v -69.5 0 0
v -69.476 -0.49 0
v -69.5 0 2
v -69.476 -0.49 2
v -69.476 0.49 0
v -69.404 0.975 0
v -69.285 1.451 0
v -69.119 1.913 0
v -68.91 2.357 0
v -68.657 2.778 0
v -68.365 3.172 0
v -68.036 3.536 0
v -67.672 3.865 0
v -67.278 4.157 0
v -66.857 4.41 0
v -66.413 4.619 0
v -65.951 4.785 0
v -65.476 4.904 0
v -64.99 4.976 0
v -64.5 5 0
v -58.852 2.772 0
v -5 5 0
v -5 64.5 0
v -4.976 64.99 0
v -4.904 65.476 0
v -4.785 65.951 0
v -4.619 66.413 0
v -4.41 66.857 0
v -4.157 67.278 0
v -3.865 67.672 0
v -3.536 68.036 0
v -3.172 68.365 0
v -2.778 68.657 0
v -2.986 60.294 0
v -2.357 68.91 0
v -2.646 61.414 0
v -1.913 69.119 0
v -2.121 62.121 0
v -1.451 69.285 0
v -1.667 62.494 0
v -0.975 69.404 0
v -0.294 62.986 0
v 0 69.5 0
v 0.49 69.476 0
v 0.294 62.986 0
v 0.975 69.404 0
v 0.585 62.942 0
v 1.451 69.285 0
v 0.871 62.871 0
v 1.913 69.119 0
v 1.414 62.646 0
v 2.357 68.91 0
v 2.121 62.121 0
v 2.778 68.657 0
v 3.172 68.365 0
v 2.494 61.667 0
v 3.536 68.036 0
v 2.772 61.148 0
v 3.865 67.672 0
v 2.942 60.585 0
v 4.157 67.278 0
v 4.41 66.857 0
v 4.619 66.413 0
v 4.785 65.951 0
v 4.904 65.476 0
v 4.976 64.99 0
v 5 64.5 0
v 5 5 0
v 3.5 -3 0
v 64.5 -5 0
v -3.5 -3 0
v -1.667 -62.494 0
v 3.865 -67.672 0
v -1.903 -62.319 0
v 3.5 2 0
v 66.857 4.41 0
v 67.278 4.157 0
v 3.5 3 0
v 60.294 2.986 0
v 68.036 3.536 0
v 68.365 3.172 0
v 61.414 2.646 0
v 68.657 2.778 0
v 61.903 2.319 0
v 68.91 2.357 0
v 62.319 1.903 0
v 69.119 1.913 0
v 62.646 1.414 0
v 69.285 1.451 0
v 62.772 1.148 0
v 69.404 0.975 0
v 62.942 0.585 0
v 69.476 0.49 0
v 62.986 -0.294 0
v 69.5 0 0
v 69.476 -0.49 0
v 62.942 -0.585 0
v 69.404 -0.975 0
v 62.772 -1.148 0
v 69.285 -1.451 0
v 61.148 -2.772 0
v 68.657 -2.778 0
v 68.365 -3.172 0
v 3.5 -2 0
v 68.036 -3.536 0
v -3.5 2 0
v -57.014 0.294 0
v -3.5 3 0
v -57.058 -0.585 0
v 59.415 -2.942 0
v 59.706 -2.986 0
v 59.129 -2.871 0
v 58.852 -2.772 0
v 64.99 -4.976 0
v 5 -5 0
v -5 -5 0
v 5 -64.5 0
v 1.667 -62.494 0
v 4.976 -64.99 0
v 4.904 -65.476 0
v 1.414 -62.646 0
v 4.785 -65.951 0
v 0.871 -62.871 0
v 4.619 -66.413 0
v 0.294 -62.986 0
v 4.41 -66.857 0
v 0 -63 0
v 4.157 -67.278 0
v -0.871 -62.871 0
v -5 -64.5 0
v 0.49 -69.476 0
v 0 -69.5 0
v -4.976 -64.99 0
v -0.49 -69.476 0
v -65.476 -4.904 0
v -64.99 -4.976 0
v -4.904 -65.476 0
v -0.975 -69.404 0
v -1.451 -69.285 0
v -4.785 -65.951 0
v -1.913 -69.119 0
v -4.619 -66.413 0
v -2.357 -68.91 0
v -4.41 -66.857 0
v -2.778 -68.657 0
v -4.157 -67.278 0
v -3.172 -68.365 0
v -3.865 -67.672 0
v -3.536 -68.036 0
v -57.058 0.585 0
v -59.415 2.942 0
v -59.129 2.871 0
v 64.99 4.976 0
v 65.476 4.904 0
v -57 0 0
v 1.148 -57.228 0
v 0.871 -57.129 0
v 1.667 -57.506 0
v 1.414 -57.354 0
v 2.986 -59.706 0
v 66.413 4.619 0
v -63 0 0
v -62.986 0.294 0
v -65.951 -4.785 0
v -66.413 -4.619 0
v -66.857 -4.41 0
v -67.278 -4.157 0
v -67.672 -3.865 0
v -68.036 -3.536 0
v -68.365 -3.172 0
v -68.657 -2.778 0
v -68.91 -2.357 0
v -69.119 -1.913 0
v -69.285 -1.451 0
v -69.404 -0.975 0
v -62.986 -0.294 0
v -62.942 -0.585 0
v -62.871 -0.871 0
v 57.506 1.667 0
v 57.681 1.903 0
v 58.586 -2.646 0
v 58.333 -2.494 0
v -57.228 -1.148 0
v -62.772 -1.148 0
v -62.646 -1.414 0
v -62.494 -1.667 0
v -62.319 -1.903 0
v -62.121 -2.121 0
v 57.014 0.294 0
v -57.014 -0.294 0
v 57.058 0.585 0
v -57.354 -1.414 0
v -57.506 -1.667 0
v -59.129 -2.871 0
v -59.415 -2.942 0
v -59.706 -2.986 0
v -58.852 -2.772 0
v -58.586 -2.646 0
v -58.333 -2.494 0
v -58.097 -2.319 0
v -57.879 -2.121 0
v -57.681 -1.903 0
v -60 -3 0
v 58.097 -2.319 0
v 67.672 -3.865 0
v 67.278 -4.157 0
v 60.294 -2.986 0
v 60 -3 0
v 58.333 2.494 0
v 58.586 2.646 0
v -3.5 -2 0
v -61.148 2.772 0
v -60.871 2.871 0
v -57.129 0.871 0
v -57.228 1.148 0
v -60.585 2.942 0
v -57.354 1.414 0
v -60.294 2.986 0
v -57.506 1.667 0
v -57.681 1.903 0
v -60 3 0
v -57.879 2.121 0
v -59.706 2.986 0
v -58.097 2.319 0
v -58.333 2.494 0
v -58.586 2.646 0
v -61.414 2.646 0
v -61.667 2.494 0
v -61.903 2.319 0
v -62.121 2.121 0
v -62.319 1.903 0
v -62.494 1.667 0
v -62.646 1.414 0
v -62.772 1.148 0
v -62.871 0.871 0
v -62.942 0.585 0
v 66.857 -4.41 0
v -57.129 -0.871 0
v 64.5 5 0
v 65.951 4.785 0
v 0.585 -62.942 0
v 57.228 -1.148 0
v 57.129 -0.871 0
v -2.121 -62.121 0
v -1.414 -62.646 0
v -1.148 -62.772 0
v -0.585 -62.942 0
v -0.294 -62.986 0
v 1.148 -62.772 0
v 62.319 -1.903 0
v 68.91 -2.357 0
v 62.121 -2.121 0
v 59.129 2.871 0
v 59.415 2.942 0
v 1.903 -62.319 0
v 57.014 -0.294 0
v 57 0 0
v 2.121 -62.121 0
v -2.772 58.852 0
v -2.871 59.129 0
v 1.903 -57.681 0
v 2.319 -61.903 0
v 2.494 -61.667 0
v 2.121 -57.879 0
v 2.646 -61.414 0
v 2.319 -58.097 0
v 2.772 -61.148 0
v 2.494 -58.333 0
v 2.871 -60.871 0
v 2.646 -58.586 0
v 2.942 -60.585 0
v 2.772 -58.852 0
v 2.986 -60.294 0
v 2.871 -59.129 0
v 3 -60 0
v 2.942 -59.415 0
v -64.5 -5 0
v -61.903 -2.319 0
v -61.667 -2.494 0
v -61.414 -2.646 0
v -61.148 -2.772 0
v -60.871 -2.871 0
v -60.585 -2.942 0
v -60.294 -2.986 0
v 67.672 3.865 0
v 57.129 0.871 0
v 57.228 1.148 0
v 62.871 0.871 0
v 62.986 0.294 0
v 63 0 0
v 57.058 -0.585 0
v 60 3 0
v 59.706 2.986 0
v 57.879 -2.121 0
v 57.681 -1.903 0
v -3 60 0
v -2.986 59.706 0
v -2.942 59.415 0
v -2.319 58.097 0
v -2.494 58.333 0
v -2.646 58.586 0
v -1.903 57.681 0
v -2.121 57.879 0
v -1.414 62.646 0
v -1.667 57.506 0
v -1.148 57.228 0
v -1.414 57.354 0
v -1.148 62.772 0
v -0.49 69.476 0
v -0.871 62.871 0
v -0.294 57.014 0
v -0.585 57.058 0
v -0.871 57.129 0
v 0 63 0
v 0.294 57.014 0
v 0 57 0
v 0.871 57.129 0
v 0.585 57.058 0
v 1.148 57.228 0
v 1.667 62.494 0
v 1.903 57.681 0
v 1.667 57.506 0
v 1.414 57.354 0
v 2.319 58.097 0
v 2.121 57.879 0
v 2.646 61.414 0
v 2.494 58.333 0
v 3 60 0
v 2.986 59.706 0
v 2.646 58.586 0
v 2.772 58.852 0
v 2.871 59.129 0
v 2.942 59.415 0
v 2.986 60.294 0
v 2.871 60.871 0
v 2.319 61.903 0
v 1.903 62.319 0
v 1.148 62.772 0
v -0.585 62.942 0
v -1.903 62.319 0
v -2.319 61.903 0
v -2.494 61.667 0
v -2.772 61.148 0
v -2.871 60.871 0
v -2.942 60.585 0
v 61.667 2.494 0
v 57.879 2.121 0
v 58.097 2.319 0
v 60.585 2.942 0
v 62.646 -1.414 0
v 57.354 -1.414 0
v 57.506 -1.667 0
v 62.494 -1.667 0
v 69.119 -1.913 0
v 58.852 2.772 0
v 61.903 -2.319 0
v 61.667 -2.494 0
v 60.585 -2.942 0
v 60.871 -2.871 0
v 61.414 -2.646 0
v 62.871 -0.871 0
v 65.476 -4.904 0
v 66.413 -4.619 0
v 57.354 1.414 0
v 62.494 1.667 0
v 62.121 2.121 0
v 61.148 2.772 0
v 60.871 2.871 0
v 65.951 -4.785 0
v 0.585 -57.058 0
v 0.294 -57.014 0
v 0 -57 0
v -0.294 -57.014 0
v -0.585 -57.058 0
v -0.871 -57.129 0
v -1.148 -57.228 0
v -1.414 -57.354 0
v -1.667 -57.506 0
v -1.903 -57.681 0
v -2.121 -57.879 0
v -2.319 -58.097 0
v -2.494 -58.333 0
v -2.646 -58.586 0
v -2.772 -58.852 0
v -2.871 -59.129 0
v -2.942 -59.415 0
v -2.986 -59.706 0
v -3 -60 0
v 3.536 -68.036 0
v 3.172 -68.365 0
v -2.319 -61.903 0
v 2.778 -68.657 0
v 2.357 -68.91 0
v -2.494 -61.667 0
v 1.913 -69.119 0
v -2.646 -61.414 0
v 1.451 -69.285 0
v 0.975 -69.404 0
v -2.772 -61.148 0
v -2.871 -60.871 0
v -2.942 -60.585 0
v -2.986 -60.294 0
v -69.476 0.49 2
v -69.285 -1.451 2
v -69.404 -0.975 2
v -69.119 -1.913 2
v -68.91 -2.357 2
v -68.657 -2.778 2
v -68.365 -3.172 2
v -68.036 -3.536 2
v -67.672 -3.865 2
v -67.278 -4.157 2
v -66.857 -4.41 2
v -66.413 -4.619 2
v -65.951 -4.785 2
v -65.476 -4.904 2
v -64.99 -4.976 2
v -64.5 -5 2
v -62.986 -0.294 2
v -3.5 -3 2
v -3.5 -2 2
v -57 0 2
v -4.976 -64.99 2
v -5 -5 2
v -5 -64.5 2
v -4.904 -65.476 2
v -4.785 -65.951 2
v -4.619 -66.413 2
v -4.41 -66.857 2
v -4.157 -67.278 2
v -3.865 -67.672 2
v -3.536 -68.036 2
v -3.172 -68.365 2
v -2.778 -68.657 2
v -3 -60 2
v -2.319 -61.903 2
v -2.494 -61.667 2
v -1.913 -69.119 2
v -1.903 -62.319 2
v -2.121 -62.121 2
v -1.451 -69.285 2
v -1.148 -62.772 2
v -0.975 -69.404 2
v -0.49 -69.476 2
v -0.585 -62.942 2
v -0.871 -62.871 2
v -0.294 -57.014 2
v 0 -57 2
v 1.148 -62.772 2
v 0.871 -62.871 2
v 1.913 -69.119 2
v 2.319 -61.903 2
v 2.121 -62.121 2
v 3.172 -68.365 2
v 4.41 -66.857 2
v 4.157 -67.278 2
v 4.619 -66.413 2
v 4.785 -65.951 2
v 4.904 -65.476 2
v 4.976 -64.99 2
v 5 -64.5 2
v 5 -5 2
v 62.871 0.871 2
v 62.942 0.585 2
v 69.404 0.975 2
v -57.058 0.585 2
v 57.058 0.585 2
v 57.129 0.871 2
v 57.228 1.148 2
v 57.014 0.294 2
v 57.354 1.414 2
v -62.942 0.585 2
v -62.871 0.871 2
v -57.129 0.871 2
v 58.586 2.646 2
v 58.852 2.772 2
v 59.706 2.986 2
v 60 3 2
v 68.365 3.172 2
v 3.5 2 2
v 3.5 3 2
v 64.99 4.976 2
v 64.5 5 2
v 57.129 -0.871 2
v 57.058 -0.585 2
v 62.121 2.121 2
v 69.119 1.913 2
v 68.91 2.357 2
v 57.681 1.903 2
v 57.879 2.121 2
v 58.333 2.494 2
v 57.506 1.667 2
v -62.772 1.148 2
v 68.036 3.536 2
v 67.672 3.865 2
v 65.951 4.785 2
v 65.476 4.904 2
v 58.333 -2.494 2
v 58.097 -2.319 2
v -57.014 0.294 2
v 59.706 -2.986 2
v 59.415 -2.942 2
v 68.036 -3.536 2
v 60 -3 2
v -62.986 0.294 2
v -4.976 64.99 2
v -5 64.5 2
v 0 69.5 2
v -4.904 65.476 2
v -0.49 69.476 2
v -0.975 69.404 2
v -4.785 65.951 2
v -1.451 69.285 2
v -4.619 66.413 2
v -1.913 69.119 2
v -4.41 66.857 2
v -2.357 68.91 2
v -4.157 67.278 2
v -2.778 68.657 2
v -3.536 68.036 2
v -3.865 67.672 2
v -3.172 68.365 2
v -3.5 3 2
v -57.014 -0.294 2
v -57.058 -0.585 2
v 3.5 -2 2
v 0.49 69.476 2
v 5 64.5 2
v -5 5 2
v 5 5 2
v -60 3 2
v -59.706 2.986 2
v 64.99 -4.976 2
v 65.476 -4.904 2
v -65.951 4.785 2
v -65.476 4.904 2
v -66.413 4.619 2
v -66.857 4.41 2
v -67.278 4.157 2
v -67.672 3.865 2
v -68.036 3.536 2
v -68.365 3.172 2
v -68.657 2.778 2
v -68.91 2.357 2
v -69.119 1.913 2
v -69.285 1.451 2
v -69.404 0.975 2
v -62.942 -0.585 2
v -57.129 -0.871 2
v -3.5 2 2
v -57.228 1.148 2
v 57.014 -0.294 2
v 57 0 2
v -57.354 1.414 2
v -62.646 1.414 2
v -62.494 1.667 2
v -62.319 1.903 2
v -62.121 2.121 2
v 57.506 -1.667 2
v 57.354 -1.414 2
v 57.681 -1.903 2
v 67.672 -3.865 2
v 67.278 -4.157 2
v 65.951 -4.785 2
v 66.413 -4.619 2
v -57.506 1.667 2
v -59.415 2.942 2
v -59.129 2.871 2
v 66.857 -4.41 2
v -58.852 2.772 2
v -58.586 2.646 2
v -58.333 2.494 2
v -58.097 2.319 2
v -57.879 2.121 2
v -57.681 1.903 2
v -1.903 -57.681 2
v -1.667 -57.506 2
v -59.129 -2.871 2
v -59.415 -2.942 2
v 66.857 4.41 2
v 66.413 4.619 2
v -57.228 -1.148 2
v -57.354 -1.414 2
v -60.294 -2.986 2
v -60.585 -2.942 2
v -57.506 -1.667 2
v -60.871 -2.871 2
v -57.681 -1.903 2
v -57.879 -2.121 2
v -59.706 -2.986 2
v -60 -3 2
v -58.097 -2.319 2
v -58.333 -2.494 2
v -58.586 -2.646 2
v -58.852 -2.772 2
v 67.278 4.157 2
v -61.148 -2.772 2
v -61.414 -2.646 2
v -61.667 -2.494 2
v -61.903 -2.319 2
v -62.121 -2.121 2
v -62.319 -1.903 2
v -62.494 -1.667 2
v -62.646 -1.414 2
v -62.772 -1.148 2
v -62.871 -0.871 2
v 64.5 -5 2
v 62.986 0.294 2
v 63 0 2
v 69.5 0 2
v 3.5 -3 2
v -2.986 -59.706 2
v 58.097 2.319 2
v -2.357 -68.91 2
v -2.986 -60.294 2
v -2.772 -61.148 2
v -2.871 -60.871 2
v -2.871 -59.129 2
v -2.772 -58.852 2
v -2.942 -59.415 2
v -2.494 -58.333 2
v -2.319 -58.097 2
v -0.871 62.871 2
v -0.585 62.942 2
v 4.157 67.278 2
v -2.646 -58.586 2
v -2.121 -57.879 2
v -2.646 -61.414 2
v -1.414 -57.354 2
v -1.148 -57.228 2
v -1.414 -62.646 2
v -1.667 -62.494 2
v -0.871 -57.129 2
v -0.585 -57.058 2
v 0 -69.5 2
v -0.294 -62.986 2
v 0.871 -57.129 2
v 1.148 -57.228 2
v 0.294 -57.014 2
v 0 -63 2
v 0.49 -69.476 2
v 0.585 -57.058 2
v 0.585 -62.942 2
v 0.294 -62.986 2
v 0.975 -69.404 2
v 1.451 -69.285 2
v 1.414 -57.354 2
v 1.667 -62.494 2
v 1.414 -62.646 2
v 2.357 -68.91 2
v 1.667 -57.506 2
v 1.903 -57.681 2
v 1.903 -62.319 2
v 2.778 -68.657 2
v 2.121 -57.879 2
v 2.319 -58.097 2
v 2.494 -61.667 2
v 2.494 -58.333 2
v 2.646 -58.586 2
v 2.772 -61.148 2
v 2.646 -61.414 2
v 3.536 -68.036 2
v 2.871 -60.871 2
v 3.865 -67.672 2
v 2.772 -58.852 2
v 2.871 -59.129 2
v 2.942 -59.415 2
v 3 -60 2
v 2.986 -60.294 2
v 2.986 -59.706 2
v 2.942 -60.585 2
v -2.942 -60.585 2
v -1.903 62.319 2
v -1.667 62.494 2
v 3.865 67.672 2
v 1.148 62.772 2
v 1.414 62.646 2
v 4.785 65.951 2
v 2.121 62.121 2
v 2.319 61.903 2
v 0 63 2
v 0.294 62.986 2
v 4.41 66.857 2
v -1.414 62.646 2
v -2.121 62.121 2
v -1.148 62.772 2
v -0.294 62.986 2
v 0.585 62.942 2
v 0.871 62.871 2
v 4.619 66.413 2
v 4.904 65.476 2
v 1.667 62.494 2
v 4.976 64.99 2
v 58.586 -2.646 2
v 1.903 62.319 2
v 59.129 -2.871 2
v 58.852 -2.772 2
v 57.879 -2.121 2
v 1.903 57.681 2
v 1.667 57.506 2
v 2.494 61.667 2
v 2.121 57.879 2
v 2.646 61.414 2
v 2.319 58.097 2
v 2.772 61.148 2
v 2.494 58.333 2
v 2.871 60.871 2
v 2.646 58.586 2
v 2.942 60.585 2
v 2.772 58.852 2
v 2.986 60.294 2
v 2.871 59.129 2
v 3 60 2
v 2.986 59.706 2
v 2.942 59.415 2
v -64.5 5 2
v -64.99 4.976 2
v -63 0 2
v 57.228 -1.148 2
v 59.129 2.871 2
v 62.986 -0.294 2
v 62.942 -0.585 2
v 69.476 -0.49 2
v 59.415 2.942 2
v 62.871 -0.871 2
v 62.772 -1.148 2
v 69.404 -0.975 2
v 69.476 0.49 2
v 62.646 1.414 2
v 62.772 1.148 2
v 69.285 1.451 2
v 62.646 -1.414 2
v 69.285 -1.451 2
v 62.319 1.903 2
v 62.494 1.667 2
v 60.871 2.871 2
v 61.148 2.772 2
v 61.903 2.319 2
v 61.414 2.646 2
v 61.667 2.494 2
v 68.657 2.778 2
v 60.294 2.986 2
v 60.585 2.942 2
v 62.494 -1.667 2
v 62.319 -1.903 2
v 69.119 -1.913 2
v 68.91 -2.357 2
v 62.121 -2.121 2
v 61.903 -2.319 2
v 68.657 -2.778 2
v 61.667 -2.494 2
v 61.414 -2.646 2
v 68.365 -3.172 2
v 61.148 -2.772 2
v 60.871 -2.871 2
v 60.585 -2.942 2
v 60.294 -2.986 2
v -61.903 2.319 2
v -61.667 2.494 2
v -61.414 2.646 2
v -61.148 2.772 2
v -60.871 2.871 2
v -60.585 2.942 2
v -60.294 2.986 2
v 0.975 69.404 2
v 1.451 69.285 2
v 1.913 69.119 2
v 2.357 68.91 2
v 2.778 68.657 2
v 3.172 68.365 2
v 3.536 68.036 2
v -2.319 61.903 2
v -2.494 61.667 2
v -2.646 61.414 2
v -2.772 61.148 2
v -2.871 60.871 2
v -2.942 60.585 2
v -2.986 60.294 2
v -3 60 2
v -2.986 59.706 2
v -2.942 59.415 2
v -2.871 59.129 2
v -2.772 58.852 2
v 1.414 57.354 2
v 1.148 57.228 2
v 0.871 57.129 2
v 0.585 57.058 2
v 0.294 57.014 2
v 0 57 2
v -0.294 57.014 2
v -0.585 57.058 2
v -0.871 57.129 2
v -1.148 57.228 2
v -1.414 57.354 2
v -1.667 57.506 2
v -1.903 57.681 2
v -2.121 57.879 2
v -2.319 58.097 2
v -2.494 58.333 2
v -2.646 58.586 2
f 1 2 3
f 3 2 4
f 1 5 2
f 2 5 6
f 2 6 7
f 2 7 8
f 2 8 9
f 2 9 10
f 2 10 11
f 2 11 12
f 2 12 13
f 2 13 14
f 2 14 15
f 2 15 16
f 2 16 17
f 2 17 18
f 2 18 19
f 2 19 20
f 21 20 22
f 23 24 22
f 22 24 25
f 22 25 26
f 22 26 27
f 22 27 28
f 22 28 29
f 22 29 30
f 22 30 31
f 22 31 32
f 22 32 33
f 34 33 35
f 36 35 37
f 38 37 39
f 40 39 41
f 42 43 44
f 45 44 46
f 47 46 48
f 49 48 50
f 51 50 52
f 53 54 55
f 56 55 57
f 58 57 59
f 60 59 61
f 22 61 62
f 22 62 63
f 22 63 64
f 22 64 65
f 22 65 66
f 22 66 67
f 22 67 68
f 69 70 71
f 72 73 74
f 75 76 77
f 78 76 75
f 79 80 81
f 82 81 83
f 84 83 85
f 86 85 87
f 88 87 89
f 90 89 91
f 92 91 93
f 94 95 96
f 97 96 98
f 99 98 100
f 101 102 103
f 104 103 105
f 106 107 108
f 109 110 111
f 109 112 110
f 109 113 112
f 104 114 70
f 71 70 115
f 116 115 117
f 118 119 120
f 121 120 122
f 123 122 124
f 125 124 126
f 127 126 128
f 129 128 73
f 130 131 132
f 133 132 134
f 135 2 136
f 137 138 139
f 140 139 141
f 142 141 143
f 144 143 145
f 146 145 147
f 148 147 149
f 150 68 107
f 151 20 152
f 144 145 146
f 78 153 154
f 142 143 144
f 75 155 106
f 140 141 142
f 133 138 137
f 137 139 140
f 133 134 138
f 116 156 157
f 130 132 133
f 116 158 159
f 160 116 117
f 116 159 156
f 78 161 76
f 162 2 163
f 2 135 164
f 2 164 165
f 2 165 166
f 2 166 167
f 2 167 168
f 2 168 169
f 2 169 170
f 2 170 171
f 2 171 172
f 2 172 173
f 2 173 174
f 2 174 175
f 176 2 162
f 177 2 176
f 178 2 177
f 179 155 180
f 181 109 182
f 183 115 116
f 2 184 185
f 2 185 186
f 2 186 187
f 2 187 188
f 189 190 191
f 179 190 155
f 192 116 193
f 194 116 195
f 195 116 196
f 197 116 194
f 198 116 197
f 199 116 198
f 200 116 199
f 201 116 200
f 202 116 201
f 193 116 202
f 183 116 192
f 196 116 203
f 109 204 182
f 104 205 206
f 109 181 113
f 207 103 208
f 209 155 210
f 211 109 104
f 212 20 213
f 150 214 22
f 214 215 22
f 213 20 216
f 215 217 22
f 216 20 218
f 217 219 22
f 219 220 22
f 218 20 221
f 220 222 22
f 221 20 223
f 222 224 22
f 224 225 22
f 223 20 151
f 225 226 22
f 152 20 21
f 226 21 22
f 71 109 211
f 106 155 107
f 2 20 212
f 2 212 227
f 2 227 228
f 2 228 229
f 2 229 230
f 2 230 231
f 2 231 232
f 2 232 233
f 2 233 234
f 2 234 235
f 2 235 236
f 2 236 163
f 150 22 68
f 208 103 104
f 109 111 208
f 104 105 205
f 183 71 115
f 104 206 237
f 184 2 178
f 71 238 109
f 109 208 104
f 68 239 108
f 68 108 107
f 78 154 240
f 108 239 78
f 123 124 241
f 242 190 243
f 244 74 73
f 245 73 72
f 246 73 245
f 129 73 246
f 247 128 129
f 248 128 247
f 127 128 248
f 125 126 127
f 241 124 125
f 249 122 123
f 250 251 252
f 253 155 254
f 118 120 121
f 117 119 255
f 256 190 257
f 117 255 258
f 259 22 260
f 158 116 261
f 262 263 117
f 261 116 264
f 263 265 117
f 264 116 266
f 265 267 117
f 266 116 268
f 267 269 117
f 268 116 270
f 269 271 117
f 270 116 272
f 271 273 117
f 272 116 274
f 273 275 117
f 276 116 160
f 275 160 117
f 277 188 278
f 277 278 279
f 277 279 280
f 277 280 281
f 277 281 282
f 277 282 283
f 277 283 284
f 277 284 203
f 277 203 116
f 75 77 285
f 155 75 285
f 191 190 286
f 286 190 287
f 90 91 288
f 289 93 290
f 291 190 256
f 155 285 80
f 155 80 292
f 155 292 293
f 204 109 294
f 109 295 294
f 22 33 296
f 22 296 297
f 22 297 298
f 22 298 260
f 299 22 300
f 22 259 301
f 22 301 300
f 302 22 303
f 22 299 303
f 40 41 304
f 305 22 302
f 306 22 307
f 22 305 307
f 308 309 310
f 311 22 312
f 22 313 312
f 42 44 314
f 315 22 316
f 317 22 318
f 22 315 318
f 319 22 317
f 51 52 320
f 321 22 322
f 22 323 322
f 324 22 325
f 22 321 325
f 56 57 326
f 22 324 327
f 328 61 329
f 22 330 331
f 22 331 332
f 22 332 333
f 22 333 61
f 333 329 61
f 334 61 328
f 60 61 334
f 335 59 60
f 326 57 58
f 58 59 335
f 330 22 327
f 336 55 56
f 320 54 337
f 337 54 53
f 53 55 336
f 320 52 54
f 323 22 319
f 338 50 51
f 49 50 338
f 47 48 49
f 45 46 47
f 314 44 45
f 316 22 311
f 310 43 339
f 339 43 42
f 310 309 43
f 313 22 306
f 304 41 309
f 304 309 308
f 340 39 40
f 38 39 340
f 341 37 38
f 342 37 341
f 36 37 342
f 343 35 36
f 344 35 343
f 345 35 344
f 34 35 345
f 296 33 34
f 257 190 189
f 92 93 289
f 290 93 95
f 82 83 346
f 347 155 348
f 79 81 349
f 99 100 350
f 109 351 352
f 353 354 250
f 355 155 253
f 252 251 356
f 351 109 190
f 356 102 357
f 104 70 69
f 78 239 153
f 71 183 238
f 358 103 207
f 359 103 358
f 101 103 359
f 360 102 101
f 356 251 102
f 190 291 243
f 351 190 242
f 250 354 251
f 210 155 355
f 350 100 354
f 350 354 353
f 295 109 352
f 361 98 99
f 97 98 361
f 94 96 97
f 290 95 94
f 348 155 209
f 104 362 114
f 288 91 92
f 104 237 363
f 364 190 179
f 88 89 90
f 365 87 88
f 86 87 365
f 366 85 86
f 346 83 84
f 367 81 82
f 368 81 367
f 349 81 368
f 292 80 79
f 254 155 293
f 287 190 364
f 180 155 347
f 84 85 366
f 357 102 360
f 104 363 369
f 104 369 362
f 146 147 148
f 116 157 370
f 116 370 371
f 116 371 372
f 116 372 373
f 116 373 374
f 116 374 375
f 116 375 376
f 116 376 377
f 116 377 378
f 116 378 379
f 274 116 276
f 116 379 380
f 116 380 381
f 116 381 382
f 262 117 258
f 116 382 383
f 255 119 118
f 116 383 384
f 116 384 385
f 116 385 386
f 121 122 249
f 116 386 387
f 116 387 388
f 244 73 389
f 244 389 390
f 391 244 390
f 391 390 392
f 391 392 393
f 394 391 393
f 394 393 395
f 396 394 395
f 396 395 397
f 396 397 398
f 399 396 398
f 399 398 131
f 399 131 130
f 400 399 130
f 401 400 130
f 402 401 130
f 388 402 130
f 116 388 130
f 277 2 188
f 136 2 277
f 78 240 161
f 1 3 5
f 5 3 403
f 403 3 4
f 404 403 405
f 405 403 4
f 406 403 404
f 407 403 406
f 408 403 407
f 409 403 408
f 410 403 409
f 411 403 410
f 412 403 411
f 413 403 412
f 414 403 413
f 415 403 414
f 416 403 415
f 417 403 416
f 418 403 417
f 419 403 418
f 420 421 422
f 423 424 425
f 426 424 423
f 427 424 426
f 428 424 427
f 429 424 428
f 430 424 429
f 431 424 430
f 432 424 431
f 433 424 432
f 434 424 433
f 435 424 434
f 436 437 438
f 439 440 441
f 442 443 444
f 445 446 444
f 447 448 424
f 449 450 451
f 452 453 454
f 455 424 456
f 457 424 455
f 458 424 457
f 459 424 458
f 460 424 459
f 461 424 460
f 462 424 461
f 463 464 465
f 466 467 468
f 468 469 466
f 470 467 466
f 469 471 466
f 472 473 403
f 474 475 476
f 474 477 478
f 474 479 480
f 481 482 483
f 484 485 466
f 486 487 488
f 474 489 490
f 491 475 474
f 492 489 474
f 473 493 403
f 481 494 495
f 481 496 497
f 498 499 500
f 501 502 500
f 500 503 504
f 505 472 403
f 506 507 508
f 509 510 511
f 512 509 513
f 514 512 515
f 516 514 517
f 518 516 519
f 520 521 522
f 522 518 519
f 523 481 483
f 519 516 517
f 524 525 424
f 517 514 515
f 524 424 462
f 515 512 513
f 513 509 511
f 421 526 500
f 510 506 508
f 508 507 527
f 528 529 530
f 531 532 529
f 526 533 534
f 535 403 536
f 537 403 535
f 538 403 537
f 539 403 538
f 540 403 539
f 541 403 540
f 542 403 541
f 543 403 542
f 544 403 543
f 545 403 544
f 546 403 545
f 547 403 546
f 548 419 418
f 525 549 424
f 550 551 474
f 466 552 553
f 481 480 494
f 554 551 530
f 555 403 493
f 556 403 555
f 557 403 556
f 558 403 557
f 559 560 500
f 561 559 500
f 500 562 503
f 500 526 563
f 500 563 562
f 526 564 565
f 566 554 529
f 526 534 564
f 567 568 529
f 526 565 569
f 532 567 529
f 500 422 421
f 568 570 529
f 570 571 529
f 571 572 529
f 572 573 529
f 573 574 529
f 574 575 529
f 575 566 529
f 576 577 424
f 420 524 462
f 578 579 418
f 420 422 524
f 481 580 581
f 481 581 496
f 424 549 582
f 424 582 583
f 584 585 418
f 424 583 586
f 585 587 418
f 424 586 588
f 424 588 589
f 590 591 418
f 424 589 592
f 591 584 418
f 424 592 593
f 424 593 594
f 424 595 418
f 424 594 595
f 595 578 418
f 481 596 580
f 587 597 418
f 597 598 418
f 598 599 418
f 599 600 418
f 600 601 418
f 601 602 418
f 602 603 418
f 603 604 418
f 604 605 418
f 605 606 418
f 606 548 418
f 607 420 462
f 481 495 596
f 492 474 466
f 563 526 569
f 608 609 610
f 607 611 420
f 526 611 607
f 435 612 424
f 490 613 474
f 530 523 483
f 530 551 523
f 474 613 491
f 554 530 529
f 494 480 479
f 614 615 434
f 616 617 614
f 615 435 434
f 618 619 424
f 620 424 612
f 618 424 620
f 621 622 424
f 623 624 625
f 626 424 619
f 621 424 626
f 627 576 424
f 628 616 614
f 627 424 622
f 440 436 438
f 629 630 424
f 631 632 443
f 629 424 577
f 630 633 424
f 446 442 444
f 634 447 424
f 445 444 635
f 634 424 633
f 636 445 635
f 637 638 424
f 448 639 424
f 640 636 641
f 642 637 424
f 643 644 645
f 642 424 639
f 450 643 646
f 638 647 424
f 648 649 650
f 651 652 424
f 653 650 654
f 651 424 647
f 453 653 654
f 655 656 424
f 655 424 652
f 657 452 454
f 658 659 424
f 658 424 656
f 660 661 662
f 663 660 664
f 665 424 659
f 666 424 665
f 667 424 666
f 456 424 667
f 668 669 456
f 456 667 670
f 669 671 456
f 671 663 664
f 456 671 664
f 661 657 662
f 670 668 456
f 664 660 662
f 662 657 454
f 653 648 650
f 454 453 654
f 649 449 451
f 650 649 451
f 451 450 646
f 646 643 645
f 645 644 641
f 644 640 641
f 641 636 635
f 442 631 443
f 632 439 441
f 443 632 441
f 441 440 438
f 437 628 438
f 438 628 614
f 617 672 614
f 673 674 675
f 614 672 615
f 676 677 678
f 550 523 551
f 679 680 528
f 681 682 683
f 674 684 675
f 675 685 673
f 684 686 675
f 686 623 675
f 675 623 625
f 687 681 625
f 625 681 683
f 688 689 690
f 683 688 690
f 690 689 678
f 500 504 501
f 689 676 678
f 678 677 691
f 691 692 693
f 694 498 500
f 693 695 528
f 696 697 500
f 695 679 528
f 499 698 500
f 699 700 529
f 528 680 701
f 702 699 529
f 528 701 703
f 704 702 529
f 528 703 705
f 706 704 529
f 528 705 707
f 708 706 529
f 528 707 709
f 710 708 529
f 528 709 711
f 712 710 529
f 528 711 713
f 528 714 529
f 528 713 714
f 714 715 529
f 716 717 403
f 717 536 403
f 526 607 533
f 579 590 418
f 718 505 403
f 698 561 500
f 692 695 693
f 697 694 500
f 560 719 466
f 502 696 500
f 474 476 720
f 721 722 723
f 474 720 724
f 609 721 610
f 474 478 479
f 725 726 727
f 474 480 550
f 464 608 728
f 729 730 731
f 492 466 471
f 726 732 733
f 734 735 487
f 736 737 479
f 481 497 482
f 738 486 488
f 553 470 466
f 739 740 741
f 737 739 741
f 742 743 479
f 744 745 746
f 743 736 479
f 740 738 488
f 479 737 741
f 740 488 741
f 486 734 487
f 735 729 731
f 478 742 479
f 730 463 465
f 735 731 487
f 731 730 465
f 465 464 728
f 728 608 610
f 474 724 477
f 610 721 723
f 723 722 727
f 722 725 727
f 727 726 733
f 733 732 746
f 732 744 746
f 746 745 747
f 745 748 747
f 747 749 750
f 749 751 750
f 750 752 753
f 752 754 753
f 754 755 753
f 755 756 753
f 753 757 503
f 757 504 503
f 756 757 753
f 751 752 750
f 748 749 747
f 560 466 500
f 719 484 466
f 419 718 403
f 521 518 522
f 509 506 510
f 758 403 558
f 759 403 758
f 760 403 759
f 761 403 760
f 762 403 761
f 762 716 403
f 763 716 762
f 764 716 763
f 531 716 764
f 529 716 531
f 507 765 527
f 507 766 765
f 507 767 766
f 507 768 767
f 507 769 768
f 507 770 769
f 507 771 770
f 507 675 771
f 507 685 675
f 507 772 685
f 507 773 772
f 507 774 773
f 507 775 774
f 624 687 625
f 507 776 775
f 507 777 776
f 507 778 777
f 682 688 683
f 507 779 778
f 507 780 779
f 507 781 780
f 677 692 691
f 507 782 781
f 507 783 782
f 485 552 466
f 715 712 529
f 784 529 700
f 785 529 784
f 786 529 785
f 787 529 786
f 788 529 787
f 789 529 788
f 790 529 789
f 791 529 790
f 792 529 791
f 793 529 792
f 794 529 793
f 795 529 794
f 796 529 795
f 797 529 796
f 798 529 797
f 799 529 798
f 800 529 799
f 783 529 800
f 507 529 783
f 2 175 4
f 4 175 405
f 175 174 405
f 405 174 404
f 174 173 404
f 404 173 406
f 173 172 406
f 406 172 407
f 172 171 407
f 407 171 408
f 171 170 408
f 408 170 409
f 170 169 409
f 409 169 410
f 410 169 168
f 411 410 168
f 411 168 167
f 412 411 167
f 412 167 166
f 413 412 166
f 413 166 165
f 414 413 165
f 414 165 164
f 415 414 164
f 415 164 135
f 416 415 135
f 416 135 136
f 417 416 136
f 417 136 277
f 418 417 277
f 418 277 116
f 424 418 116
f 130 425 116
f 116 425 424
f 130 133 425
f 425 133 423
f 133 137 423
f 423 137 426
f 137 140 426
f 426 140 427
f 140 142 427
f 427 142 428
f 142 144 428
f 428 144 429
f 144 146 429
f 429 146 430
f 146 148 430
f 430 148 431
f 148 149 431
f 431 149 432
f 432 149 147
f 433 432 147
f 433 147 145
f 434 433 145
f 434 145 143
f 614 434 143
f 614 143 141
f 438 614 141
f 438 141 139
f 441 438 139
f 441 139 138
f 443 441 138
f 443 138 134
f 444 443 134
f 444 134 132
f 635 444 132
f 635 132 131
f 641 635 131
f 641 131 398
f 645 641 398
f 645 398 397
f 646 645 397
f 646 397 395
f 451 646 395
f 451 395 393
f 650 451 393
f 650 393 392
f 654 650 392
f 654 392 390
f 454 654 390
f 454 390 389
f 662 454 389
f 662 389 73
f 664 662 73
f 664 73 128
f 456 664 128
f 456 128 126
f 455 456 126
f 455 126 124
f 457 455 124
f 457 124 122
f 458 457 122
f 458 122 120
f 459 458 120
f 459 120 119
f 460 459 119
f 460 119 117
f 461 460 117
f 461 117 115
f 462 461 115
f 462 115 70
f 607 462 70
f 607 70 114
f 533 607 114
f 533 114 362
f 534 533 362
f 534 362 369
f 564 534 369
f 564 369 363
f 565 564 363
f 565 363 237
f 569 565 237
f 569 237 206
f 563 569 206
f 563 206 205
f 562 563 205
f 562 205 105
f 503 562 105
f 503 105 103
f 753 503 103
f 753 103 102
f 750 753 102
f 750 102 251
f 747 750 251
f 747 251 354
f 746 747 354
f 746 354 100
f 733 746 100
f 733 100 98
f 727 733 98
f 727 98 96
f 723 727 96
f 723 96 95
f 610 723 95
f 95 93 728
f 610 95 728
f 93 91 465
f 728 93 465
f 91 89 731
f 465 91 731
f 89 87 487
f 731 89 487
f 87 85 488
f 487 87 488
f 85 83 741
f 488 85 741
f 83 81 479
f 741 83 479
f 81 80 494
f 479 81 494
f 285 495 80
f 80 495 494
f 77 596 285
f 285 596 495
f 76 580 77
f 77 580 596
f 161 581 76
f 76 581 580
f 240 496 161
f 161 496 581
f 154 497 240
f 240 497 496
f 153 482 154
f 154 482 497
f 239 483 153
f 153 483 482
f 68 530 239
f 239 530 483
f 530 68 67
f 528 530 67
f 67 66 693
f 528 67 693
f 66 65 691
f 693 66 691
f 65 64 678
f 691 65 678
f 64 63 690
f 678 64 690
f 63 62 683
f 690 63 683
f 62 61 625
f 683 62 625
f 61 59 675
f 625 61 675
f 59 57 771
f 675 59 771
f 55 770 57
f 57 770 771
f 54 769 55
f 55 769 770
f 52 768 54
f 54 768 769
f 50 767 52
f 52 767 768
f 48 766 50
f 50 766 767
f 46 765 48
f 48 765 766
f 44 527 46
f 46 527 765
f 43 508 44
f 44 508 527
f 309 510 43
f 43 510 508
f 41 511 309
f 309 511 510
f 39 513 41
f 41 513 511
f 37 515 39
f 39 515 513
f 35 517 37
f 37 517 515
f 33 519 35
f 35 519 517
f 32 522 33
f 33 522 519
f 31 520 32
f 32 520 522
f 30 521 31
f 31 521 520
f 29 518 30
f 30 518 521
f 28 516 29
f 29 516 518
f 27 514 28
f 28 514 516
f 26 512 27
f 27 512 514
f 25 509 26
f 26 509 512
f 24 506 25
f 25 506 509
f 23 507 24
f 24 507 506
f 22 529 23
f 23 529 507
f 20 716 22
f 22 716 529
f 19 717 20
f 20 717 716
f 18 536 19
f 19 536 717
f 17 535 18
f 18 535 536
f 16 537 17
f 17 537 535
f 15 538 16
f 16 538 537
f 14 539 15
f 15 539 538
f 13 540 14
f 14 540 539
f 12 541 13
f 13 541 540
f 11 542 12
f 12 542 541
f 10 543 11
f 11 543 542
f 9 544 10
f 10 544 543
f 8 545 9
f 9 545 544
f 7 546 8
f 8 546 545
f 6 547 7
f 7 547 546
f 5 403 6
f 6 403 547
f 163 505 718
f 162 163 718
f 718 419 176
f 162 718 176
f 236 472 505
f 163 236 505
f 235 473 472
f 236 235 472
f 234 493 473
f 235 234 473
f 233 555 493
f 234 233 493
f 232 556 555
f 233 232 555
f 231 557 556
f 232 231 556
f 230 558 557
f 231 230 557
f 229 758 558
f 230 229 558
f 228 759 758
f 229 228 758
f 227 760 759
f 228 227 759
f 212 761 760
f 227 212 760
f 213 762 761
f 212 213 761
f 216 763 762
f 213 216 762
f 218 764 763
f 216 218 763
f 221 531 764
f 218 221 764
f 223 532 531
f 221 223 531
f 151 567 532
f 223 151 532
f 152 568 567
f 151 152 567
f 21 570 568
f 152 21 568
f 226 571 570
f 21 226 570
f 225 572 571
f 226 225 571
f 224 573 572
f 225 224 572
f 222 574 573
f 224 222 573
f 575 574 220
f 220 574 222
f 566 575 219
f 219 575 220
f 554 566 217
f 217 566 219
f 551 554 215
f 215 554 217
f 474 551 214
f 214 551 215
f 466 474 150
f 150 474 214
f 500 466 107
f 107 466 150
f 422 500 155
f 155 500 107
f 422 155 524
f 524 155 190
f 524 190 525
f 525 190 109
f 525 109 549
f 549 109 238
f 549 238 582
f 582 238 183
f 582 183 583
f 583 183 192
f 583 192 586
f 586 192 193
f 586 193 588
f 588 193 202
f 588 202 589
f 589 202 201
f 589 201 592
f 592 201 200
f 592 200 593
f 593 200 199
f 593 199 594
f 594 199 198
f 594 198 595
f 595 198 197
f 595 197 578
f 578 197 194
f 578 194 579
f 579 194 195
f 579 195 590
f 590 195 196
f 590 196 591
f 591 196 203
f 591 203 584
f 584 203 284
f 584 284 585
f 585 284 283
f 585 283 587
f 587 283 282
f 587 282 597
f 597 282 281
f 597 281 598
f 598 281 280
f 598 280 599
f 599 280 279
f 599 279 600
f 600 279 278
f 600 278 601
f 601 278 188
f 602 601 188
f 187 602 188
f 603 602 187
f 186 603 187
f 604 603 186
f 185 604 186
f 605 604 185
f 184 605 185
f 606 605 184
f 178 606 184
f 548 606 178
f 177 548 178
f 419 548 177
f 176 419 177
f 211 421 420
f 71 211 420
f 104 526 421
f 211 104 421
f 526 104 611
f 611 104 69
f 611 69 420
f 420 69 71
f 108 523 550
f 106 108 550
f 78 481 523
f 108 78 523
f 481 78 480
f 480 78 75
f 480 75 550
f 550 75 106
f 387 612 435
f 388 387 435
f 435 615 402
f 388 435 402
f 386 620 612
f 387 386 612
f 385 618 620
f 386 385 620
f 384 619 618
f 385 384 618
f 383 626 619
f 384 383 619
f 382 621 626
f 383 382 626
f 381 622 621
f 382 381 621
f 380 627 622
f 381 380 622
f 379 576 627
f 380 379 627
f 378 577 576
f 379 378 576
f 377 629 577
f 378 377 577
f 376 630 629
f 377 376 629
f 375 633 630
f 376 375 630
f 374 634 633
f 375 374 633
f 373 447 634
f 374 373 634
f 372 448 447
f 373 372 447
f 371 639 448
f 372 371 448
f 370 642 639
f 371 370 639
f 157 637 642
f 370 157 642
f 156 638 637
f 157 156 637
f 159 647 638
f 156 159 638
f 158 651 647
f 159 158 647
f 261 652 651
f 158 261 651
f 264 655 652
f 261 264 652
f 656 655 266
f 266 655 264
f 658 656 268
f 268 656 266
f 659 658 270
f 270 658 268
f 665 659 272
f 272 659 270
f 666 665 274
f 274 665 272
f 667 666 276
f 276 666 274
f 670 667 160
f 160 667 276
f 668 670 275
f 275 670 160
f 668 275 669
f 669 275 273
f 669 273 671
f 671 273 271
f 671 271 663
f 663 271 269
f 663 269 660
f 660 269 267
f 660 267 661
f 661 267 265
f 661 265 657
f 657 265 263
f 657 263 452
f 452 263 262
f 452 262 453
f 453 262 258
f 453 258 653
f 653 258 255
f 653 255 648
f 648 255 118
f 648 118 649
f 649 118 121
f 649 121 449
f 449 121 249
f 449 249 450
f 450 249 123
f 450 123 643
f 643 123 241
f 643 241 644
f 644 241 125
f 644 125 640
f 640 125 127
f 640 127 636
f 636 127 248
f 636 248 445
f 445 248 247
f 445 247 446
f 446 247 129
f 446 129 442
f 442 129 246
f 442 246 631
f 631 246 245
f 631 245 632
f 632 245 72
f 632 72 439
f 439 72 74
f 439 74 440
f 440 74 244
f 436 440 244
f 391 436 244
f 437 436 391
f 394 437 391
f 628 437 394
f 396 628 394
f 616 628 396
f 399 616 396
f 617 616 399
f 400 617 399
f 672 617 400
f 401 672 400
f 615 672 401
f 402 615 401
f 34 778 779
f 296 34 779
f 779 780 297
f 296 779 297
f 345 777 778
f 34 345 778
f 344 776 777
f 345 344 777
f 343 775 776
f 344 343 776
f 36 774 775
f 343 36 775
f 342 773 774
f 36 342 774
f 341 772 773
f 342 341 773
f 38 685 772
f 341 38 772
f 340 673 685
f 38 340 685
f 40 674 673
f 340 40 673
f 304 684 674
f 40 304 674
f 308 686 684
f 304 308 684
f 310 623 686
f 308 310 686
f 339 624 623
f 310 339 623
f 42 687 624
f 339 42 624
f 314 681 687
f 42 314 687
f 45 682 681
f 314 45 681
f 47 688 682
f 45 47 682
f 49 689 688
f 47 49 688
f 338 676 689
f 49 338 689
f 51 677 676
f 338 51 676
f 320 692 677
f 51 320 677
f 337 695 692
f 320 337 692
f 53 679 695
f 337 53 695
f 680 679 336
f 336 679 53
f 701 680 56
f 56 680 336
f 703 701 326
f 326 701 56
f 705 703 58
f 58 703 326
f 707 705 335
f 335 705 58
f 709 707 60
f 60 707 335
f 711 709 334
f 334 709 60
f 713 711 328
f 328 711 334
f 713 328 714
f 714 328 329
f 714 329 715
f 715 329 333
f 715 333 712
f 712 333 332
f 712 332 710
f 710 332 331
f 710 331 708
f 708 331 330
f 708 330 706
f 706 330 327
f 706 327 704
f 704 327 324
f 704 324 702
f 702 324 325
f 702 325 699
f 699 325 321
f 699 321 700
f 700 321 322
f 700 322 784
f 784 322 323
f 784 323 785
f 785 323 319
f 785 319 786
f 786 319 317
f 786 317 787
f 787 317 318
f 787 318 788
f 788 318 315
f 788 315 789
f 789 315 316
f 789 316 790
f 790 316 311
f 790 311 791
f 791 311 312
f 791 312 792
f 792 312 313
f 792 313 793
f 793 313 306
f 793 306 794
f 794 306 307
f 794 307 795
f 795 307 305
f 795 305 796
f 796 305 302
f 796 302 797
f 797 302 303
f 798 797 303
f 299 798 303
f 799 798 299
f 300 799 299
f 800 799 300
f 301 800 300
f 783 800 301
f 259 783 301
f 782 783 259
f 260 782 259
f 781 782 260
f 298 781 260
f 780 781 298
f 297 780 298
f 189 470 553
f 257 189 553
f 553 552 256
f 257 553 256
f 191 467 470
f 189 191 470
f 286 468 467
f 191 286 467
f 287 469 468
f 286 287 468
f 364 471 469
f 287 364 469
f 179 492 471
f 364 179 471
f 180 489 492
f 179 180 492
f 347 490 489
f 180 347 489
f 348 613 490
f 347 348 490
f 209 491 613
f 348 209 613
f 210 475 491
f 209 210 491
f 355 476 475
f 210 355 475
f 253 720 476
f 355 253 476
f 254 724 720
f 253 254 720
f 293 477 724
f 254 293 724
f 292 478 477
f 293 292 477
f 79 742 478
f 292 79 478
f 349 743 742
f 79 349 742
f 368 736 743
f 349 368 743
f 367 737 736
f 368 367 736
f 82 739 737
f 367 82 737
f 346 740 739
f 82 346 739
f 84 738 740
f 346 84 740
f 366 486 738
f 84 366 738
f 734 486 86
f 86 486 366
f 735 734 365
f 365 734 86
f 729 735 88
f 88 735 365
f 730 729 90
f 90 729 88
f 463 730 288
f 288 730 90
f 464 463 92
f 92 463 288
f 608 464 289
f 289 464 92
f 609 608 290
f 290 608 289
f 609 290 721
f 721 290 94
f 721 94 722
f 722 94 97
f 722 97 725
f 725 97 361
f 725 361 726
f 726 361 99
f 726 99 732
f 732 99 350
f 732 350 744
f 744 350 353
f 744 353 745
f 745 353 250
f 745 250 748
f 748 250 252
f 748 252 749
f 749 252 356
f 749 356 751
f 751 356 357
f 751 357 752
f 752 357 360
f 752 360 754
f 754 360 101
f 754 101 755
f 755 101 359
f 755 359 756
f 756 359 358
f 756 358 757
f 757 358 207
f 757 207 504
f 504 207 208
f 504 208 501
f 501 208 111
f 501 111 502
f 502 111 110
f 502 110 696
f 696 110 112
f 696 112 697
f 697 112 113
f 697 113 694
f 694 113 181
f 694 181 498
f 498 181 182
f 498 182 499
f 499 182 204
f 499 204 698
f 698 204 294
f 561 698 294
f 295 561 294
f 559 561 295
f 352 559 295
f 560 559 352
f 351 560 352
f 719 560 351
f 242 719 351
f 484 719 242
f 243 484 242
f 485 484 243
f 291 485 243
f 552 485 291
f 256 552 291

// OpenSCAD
module FanJoiner(screwRadius=3, screwSpread=60, height=2, width=10, fn=64)
{
    extra = screwRadius * 1.5;
    difference()
    {
        // Main cross shape
        union()
        {
            hull()
            {
                translate([0, -screwSpread - extra, 0]) cylinder(r=width/2, h=height, $fn=fn);
                translate([0,  screwSpread + extra, 0]) cylinder(r=width/2, h=height, $fn=fn);
            }

            hull()
            {
                translate([-screwSpread - extra, 0, 0]) cylinder(r=width/2, h=height, $fn=fn);
                translate([ screwSpread + extra, 0, 0]) cylinder(r=width/2, h=height, $fn=fn);
            }
        }

        // Screw holes
        translate([0, -screwSpread, -height]) cylinder(r=screwRadius, h=height*3, $fn=fn);
        translate([0,  screwSpread, -height]) cylinder(r=screwRadius, h=height*3, $fn=fn);
        translate([-screwSpread, 0, -height]) cylinder(r=screwRadius, h=height*3, $fn=fn);
        translate([ screwSpread, 0, -height]) cylinder(r=screwRadius, h=height*3, $fn=fn);

        // Slots for cable tie
        translate([0, -width/4, 0]) cube([width*0.7, 1, height*3], center=true);
        translate([0,  width/4, 0]) cube([width*0.7, 1, height*3], center=true);
    }
}

FanJoiner();
